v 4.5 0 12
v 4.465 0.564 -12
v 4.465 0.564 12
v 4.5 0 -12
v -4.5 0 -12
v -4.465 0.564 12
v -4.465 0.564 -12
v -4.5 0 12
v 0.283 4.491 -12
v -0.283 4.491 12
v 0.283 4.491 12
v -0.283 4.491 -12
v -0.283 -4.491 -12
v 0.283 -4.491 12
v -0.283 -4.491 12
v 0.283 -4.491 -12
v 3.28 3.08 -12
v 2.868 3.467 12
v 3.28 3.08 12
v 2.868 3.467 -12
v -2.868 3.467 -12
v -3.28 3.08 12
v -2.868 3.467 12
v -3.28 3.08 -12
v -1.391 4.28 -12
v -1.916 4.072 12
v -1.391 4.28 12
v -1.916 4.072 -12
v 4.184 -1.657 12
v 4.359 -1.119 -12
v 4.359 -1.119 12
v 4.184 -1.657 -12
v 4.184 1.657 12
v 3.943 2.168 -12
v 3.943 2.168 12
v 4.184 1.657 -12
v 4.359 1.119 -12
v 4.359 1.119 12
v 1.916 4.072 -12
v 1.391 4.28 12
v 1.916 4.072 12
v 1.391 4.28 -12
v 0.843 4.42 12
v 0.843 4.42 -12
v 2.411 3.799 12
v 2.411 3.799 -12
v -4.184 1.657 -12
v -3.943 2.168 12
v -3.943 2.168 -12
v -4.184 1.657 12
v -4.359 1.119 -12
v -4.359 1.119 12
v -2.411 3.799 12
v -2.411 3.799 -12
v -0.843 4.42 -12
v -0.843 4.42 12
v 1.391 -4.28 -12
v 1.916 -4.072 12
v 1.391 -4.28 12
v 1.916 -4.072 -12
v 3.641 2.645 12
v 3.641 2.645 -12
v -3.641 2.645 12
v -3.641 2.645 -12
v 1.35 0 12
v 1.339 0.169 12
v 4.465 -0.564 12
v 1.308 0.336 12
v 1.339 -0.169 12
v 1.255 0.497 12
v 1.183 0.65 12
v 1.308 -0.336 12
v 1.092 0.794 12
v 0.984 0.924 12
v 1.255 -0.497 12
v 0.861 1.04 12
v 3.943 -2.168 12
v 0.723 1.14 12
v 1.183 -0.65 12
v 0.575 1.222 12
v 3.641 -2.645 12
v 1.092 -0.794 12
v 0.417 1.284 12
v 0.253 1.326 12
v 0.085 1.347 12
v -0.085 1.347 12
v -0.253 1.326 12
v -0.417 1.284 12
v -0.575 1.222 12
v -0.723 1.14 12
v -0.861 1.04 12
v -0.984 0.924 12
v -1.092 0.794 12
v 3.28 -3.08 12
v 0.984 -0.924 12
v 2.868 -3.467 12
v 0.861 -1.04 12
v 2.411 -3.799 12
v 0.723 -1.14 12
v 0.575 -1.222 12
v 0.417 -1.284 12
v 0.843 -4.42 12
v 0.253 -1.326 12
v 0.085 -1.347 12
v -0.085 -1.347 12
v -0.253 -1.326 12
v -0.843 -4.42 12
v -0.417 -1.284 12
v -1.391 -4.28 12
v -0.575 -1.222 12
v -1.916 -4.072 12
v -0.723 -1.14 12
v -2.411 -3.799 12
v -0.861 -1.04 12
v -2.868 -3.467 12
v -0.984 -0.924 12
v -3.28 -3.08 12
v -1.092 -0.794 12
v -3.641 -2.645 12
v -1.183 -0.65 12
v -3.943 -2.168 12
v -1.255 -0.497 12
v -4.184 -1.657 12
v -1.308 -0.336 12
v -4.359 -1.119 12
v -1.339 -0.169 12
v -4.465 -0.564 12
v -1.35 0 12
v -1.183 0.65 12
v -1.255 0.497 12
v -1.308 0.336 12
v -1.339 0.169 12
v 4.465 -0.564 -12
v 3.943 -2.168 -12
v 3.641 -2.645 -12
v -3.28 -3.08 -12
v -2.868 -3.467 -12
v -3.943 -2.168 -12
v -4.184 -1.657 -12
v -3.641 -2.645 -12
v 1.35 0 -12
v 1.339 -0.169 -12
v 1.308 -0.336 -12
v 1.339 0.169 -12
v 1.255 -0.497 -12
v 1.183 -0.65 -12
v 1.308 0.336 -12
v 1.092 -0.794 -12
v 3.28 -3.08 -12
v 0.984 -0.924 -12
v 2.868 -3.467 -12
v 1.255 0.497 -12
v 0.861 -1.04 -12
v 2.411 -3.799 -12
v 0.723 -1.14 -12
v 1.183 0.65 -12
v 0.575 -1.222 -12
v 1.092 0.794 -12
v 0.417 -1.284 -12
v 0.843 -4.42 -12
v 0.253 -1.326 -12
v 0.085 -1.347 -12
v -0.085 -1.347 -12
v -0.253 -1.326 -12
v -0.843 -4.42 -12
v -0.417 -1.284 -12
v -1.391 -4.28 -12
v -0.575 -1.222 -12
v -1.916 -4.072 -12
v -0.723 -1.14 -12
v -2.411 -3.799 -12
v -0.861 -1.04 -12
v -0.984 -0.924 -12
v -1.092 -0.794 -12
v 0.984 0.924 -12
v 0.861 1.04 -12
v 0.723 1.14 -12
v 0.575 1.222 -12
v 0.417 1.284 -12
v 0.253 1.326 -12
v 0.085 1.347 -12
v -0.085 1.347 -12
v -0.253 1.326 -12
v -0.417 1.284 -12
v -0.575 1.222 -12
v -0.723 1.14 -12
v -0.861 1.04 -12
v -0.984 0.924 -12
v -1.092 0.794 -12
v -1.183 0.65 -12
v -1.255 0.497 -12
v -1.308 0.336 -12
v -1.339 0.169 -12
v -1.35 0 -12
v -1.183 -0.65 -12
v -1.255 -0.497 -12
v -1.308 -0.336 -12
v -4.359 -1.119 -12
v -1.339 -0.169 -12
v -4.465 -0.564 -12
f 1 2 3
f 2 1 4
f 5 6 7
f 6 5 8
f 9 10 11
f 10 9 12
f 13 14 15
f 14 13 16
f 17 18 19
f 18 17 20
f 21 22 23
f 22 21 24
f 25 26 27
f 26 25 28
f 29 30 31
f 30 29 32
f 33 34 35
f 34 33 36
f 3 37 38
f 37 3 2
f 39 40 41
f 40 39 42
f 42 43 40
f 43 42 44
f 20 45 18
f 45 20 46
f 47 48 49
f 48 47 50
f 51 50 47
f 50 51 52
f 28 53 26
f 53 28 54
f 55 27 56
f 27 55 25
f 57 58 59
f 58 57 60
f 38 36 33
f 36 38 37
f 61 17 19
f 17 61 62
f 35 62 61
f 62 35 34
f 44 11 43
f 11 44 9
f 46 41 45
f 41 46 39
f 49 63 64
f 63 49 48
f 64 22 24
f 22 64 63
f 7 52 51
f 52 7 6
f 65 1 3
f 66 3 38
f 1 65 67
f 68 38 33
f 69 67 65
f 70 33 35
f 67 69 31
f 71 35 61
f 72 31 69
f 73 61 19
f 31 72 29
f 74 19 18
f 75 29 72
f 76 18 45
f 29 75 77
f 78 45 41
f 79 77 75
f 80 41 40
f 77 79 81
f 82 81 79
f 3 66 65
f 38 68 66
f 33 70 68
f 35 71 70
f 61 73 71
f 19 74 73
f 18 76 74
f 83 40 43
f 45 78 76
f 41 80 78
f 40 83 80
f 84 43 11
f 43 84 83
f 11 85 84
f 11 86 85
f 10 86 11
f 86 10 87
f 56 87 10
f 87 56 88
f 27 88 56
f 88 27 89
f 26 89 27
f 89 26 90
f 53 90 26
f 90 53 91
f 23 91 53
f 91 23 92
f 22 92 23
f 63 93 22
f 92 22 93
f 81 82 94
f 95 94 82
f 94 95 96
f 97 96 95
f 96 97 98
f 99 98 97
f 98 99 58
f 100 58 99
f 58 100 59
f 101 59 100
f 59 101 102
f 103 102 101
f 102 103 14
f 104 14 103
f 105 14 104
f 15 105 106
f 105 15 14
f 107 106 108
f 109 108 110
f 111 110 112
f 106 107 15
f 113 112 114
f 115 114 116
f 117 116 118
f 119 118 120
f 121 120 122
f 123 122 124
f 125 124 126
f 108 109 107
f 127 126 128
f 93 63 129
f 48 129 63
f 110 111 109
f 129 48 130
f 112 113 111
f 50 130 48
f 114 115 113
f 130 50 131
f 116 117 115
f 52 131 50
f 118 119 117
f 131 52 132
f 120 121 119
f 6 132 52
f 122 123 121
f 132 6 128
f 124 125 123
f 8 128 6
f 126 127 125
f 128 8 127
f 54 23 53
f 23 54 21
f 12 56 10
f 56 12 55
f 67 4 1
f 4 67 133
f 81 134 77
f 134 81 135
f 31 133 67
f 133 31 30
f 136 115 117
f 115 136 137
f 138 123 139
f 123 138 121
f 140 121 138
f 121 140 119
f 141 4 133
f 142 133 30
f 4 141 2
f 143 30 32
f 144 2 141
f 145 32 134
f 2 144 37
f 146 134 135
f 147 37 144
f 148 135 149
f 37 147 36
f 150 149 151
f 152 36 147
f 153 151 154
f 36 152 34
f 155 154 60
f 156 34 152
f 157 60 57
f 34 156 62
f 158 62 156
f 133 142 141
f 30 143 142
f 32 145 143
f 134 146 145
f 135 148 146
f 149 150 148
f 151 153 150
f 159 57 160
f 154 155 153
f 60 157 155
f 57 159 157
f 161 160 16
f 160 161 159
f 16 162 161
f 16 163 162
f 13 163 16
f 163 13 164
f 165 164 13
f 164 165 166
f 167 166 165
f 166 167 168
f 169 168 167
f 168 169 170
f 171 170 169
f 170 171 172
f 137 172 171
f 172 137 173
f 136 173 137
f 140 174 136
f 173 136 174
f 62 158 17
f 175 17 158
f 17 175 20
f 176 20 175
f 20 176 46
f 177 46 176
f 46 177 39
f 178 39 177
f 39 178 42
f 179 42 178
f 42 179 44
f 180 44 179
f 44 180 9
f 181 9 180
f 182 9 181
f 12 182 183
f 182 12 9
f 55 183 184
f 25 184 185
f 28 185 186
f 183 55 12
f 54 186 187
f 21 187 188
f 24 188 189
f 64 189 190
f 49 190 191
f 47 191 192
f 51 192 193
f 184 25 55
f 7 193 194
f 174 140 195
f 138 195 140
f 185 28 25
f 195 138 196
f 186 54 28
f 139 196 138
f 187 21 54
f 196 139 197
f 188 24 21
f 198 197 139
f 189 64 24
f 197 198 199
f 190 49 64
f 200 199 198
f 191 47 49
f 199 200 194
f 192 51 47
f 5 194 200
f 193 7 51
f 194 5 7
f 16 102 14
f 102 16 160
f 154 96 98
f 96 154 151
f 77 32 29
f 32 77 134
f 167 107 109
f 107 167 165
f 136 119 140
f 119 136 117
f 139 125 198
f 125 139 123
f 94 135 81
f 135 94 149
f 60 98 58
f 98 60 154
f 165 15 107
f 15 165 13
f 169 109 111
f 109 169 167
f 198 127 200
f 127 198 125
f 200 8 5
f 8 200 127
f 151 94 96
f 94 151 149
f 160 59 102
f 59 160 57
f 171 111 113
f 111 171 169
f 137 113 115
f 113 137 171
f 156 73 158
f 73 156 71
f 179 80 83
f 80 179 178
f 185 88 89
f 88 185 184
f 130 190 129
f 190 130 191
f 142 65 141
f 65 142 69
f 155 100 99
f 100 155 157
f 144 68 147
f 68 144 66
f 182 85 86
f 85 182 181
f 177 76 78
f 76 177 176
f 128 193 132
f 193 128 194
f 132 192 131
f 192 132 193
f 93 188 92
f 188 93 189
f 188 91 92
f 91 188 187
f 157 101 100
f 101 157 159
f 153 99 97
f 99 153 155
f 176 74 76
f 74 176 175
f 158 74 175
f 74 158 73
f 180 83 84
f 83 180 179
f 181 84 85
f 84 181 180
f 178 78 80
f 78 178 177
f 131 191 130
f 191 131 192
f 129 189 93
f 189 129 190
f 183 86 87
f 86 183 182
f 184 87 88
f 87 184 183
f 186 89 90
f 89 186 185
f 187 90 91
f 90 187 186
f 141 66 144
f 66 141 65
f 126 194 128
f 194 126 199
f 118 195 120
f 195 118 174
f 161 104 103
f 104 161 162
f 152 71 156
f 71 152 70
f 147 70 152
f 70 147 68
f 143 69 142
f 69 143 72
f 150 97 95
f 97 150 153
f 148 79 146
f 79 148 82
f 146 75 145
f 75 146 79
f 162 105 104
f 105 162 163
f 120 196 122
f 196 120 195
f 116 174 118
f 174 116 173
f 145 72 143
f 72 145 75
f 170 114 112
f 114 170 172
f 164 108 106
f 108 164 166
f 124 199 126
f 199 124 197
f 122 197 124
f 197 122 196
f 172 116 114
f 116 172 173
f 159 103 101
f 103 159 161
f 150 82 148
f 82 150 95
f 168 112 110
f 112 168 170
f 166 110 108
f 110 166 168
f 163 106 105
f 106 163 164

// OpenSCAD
$fn = 50;


difference() {
	union() {
		translate(v = [0, 0, -12.0000000000]) {
			cylinder(h = 24, r = 4.5000000000);
		}
	}
	union() {
		translate(v = [0, 0, -100.0000000000]) {
			cylinder(h = 200, r = 1.3500000000);
		}
	}
}
